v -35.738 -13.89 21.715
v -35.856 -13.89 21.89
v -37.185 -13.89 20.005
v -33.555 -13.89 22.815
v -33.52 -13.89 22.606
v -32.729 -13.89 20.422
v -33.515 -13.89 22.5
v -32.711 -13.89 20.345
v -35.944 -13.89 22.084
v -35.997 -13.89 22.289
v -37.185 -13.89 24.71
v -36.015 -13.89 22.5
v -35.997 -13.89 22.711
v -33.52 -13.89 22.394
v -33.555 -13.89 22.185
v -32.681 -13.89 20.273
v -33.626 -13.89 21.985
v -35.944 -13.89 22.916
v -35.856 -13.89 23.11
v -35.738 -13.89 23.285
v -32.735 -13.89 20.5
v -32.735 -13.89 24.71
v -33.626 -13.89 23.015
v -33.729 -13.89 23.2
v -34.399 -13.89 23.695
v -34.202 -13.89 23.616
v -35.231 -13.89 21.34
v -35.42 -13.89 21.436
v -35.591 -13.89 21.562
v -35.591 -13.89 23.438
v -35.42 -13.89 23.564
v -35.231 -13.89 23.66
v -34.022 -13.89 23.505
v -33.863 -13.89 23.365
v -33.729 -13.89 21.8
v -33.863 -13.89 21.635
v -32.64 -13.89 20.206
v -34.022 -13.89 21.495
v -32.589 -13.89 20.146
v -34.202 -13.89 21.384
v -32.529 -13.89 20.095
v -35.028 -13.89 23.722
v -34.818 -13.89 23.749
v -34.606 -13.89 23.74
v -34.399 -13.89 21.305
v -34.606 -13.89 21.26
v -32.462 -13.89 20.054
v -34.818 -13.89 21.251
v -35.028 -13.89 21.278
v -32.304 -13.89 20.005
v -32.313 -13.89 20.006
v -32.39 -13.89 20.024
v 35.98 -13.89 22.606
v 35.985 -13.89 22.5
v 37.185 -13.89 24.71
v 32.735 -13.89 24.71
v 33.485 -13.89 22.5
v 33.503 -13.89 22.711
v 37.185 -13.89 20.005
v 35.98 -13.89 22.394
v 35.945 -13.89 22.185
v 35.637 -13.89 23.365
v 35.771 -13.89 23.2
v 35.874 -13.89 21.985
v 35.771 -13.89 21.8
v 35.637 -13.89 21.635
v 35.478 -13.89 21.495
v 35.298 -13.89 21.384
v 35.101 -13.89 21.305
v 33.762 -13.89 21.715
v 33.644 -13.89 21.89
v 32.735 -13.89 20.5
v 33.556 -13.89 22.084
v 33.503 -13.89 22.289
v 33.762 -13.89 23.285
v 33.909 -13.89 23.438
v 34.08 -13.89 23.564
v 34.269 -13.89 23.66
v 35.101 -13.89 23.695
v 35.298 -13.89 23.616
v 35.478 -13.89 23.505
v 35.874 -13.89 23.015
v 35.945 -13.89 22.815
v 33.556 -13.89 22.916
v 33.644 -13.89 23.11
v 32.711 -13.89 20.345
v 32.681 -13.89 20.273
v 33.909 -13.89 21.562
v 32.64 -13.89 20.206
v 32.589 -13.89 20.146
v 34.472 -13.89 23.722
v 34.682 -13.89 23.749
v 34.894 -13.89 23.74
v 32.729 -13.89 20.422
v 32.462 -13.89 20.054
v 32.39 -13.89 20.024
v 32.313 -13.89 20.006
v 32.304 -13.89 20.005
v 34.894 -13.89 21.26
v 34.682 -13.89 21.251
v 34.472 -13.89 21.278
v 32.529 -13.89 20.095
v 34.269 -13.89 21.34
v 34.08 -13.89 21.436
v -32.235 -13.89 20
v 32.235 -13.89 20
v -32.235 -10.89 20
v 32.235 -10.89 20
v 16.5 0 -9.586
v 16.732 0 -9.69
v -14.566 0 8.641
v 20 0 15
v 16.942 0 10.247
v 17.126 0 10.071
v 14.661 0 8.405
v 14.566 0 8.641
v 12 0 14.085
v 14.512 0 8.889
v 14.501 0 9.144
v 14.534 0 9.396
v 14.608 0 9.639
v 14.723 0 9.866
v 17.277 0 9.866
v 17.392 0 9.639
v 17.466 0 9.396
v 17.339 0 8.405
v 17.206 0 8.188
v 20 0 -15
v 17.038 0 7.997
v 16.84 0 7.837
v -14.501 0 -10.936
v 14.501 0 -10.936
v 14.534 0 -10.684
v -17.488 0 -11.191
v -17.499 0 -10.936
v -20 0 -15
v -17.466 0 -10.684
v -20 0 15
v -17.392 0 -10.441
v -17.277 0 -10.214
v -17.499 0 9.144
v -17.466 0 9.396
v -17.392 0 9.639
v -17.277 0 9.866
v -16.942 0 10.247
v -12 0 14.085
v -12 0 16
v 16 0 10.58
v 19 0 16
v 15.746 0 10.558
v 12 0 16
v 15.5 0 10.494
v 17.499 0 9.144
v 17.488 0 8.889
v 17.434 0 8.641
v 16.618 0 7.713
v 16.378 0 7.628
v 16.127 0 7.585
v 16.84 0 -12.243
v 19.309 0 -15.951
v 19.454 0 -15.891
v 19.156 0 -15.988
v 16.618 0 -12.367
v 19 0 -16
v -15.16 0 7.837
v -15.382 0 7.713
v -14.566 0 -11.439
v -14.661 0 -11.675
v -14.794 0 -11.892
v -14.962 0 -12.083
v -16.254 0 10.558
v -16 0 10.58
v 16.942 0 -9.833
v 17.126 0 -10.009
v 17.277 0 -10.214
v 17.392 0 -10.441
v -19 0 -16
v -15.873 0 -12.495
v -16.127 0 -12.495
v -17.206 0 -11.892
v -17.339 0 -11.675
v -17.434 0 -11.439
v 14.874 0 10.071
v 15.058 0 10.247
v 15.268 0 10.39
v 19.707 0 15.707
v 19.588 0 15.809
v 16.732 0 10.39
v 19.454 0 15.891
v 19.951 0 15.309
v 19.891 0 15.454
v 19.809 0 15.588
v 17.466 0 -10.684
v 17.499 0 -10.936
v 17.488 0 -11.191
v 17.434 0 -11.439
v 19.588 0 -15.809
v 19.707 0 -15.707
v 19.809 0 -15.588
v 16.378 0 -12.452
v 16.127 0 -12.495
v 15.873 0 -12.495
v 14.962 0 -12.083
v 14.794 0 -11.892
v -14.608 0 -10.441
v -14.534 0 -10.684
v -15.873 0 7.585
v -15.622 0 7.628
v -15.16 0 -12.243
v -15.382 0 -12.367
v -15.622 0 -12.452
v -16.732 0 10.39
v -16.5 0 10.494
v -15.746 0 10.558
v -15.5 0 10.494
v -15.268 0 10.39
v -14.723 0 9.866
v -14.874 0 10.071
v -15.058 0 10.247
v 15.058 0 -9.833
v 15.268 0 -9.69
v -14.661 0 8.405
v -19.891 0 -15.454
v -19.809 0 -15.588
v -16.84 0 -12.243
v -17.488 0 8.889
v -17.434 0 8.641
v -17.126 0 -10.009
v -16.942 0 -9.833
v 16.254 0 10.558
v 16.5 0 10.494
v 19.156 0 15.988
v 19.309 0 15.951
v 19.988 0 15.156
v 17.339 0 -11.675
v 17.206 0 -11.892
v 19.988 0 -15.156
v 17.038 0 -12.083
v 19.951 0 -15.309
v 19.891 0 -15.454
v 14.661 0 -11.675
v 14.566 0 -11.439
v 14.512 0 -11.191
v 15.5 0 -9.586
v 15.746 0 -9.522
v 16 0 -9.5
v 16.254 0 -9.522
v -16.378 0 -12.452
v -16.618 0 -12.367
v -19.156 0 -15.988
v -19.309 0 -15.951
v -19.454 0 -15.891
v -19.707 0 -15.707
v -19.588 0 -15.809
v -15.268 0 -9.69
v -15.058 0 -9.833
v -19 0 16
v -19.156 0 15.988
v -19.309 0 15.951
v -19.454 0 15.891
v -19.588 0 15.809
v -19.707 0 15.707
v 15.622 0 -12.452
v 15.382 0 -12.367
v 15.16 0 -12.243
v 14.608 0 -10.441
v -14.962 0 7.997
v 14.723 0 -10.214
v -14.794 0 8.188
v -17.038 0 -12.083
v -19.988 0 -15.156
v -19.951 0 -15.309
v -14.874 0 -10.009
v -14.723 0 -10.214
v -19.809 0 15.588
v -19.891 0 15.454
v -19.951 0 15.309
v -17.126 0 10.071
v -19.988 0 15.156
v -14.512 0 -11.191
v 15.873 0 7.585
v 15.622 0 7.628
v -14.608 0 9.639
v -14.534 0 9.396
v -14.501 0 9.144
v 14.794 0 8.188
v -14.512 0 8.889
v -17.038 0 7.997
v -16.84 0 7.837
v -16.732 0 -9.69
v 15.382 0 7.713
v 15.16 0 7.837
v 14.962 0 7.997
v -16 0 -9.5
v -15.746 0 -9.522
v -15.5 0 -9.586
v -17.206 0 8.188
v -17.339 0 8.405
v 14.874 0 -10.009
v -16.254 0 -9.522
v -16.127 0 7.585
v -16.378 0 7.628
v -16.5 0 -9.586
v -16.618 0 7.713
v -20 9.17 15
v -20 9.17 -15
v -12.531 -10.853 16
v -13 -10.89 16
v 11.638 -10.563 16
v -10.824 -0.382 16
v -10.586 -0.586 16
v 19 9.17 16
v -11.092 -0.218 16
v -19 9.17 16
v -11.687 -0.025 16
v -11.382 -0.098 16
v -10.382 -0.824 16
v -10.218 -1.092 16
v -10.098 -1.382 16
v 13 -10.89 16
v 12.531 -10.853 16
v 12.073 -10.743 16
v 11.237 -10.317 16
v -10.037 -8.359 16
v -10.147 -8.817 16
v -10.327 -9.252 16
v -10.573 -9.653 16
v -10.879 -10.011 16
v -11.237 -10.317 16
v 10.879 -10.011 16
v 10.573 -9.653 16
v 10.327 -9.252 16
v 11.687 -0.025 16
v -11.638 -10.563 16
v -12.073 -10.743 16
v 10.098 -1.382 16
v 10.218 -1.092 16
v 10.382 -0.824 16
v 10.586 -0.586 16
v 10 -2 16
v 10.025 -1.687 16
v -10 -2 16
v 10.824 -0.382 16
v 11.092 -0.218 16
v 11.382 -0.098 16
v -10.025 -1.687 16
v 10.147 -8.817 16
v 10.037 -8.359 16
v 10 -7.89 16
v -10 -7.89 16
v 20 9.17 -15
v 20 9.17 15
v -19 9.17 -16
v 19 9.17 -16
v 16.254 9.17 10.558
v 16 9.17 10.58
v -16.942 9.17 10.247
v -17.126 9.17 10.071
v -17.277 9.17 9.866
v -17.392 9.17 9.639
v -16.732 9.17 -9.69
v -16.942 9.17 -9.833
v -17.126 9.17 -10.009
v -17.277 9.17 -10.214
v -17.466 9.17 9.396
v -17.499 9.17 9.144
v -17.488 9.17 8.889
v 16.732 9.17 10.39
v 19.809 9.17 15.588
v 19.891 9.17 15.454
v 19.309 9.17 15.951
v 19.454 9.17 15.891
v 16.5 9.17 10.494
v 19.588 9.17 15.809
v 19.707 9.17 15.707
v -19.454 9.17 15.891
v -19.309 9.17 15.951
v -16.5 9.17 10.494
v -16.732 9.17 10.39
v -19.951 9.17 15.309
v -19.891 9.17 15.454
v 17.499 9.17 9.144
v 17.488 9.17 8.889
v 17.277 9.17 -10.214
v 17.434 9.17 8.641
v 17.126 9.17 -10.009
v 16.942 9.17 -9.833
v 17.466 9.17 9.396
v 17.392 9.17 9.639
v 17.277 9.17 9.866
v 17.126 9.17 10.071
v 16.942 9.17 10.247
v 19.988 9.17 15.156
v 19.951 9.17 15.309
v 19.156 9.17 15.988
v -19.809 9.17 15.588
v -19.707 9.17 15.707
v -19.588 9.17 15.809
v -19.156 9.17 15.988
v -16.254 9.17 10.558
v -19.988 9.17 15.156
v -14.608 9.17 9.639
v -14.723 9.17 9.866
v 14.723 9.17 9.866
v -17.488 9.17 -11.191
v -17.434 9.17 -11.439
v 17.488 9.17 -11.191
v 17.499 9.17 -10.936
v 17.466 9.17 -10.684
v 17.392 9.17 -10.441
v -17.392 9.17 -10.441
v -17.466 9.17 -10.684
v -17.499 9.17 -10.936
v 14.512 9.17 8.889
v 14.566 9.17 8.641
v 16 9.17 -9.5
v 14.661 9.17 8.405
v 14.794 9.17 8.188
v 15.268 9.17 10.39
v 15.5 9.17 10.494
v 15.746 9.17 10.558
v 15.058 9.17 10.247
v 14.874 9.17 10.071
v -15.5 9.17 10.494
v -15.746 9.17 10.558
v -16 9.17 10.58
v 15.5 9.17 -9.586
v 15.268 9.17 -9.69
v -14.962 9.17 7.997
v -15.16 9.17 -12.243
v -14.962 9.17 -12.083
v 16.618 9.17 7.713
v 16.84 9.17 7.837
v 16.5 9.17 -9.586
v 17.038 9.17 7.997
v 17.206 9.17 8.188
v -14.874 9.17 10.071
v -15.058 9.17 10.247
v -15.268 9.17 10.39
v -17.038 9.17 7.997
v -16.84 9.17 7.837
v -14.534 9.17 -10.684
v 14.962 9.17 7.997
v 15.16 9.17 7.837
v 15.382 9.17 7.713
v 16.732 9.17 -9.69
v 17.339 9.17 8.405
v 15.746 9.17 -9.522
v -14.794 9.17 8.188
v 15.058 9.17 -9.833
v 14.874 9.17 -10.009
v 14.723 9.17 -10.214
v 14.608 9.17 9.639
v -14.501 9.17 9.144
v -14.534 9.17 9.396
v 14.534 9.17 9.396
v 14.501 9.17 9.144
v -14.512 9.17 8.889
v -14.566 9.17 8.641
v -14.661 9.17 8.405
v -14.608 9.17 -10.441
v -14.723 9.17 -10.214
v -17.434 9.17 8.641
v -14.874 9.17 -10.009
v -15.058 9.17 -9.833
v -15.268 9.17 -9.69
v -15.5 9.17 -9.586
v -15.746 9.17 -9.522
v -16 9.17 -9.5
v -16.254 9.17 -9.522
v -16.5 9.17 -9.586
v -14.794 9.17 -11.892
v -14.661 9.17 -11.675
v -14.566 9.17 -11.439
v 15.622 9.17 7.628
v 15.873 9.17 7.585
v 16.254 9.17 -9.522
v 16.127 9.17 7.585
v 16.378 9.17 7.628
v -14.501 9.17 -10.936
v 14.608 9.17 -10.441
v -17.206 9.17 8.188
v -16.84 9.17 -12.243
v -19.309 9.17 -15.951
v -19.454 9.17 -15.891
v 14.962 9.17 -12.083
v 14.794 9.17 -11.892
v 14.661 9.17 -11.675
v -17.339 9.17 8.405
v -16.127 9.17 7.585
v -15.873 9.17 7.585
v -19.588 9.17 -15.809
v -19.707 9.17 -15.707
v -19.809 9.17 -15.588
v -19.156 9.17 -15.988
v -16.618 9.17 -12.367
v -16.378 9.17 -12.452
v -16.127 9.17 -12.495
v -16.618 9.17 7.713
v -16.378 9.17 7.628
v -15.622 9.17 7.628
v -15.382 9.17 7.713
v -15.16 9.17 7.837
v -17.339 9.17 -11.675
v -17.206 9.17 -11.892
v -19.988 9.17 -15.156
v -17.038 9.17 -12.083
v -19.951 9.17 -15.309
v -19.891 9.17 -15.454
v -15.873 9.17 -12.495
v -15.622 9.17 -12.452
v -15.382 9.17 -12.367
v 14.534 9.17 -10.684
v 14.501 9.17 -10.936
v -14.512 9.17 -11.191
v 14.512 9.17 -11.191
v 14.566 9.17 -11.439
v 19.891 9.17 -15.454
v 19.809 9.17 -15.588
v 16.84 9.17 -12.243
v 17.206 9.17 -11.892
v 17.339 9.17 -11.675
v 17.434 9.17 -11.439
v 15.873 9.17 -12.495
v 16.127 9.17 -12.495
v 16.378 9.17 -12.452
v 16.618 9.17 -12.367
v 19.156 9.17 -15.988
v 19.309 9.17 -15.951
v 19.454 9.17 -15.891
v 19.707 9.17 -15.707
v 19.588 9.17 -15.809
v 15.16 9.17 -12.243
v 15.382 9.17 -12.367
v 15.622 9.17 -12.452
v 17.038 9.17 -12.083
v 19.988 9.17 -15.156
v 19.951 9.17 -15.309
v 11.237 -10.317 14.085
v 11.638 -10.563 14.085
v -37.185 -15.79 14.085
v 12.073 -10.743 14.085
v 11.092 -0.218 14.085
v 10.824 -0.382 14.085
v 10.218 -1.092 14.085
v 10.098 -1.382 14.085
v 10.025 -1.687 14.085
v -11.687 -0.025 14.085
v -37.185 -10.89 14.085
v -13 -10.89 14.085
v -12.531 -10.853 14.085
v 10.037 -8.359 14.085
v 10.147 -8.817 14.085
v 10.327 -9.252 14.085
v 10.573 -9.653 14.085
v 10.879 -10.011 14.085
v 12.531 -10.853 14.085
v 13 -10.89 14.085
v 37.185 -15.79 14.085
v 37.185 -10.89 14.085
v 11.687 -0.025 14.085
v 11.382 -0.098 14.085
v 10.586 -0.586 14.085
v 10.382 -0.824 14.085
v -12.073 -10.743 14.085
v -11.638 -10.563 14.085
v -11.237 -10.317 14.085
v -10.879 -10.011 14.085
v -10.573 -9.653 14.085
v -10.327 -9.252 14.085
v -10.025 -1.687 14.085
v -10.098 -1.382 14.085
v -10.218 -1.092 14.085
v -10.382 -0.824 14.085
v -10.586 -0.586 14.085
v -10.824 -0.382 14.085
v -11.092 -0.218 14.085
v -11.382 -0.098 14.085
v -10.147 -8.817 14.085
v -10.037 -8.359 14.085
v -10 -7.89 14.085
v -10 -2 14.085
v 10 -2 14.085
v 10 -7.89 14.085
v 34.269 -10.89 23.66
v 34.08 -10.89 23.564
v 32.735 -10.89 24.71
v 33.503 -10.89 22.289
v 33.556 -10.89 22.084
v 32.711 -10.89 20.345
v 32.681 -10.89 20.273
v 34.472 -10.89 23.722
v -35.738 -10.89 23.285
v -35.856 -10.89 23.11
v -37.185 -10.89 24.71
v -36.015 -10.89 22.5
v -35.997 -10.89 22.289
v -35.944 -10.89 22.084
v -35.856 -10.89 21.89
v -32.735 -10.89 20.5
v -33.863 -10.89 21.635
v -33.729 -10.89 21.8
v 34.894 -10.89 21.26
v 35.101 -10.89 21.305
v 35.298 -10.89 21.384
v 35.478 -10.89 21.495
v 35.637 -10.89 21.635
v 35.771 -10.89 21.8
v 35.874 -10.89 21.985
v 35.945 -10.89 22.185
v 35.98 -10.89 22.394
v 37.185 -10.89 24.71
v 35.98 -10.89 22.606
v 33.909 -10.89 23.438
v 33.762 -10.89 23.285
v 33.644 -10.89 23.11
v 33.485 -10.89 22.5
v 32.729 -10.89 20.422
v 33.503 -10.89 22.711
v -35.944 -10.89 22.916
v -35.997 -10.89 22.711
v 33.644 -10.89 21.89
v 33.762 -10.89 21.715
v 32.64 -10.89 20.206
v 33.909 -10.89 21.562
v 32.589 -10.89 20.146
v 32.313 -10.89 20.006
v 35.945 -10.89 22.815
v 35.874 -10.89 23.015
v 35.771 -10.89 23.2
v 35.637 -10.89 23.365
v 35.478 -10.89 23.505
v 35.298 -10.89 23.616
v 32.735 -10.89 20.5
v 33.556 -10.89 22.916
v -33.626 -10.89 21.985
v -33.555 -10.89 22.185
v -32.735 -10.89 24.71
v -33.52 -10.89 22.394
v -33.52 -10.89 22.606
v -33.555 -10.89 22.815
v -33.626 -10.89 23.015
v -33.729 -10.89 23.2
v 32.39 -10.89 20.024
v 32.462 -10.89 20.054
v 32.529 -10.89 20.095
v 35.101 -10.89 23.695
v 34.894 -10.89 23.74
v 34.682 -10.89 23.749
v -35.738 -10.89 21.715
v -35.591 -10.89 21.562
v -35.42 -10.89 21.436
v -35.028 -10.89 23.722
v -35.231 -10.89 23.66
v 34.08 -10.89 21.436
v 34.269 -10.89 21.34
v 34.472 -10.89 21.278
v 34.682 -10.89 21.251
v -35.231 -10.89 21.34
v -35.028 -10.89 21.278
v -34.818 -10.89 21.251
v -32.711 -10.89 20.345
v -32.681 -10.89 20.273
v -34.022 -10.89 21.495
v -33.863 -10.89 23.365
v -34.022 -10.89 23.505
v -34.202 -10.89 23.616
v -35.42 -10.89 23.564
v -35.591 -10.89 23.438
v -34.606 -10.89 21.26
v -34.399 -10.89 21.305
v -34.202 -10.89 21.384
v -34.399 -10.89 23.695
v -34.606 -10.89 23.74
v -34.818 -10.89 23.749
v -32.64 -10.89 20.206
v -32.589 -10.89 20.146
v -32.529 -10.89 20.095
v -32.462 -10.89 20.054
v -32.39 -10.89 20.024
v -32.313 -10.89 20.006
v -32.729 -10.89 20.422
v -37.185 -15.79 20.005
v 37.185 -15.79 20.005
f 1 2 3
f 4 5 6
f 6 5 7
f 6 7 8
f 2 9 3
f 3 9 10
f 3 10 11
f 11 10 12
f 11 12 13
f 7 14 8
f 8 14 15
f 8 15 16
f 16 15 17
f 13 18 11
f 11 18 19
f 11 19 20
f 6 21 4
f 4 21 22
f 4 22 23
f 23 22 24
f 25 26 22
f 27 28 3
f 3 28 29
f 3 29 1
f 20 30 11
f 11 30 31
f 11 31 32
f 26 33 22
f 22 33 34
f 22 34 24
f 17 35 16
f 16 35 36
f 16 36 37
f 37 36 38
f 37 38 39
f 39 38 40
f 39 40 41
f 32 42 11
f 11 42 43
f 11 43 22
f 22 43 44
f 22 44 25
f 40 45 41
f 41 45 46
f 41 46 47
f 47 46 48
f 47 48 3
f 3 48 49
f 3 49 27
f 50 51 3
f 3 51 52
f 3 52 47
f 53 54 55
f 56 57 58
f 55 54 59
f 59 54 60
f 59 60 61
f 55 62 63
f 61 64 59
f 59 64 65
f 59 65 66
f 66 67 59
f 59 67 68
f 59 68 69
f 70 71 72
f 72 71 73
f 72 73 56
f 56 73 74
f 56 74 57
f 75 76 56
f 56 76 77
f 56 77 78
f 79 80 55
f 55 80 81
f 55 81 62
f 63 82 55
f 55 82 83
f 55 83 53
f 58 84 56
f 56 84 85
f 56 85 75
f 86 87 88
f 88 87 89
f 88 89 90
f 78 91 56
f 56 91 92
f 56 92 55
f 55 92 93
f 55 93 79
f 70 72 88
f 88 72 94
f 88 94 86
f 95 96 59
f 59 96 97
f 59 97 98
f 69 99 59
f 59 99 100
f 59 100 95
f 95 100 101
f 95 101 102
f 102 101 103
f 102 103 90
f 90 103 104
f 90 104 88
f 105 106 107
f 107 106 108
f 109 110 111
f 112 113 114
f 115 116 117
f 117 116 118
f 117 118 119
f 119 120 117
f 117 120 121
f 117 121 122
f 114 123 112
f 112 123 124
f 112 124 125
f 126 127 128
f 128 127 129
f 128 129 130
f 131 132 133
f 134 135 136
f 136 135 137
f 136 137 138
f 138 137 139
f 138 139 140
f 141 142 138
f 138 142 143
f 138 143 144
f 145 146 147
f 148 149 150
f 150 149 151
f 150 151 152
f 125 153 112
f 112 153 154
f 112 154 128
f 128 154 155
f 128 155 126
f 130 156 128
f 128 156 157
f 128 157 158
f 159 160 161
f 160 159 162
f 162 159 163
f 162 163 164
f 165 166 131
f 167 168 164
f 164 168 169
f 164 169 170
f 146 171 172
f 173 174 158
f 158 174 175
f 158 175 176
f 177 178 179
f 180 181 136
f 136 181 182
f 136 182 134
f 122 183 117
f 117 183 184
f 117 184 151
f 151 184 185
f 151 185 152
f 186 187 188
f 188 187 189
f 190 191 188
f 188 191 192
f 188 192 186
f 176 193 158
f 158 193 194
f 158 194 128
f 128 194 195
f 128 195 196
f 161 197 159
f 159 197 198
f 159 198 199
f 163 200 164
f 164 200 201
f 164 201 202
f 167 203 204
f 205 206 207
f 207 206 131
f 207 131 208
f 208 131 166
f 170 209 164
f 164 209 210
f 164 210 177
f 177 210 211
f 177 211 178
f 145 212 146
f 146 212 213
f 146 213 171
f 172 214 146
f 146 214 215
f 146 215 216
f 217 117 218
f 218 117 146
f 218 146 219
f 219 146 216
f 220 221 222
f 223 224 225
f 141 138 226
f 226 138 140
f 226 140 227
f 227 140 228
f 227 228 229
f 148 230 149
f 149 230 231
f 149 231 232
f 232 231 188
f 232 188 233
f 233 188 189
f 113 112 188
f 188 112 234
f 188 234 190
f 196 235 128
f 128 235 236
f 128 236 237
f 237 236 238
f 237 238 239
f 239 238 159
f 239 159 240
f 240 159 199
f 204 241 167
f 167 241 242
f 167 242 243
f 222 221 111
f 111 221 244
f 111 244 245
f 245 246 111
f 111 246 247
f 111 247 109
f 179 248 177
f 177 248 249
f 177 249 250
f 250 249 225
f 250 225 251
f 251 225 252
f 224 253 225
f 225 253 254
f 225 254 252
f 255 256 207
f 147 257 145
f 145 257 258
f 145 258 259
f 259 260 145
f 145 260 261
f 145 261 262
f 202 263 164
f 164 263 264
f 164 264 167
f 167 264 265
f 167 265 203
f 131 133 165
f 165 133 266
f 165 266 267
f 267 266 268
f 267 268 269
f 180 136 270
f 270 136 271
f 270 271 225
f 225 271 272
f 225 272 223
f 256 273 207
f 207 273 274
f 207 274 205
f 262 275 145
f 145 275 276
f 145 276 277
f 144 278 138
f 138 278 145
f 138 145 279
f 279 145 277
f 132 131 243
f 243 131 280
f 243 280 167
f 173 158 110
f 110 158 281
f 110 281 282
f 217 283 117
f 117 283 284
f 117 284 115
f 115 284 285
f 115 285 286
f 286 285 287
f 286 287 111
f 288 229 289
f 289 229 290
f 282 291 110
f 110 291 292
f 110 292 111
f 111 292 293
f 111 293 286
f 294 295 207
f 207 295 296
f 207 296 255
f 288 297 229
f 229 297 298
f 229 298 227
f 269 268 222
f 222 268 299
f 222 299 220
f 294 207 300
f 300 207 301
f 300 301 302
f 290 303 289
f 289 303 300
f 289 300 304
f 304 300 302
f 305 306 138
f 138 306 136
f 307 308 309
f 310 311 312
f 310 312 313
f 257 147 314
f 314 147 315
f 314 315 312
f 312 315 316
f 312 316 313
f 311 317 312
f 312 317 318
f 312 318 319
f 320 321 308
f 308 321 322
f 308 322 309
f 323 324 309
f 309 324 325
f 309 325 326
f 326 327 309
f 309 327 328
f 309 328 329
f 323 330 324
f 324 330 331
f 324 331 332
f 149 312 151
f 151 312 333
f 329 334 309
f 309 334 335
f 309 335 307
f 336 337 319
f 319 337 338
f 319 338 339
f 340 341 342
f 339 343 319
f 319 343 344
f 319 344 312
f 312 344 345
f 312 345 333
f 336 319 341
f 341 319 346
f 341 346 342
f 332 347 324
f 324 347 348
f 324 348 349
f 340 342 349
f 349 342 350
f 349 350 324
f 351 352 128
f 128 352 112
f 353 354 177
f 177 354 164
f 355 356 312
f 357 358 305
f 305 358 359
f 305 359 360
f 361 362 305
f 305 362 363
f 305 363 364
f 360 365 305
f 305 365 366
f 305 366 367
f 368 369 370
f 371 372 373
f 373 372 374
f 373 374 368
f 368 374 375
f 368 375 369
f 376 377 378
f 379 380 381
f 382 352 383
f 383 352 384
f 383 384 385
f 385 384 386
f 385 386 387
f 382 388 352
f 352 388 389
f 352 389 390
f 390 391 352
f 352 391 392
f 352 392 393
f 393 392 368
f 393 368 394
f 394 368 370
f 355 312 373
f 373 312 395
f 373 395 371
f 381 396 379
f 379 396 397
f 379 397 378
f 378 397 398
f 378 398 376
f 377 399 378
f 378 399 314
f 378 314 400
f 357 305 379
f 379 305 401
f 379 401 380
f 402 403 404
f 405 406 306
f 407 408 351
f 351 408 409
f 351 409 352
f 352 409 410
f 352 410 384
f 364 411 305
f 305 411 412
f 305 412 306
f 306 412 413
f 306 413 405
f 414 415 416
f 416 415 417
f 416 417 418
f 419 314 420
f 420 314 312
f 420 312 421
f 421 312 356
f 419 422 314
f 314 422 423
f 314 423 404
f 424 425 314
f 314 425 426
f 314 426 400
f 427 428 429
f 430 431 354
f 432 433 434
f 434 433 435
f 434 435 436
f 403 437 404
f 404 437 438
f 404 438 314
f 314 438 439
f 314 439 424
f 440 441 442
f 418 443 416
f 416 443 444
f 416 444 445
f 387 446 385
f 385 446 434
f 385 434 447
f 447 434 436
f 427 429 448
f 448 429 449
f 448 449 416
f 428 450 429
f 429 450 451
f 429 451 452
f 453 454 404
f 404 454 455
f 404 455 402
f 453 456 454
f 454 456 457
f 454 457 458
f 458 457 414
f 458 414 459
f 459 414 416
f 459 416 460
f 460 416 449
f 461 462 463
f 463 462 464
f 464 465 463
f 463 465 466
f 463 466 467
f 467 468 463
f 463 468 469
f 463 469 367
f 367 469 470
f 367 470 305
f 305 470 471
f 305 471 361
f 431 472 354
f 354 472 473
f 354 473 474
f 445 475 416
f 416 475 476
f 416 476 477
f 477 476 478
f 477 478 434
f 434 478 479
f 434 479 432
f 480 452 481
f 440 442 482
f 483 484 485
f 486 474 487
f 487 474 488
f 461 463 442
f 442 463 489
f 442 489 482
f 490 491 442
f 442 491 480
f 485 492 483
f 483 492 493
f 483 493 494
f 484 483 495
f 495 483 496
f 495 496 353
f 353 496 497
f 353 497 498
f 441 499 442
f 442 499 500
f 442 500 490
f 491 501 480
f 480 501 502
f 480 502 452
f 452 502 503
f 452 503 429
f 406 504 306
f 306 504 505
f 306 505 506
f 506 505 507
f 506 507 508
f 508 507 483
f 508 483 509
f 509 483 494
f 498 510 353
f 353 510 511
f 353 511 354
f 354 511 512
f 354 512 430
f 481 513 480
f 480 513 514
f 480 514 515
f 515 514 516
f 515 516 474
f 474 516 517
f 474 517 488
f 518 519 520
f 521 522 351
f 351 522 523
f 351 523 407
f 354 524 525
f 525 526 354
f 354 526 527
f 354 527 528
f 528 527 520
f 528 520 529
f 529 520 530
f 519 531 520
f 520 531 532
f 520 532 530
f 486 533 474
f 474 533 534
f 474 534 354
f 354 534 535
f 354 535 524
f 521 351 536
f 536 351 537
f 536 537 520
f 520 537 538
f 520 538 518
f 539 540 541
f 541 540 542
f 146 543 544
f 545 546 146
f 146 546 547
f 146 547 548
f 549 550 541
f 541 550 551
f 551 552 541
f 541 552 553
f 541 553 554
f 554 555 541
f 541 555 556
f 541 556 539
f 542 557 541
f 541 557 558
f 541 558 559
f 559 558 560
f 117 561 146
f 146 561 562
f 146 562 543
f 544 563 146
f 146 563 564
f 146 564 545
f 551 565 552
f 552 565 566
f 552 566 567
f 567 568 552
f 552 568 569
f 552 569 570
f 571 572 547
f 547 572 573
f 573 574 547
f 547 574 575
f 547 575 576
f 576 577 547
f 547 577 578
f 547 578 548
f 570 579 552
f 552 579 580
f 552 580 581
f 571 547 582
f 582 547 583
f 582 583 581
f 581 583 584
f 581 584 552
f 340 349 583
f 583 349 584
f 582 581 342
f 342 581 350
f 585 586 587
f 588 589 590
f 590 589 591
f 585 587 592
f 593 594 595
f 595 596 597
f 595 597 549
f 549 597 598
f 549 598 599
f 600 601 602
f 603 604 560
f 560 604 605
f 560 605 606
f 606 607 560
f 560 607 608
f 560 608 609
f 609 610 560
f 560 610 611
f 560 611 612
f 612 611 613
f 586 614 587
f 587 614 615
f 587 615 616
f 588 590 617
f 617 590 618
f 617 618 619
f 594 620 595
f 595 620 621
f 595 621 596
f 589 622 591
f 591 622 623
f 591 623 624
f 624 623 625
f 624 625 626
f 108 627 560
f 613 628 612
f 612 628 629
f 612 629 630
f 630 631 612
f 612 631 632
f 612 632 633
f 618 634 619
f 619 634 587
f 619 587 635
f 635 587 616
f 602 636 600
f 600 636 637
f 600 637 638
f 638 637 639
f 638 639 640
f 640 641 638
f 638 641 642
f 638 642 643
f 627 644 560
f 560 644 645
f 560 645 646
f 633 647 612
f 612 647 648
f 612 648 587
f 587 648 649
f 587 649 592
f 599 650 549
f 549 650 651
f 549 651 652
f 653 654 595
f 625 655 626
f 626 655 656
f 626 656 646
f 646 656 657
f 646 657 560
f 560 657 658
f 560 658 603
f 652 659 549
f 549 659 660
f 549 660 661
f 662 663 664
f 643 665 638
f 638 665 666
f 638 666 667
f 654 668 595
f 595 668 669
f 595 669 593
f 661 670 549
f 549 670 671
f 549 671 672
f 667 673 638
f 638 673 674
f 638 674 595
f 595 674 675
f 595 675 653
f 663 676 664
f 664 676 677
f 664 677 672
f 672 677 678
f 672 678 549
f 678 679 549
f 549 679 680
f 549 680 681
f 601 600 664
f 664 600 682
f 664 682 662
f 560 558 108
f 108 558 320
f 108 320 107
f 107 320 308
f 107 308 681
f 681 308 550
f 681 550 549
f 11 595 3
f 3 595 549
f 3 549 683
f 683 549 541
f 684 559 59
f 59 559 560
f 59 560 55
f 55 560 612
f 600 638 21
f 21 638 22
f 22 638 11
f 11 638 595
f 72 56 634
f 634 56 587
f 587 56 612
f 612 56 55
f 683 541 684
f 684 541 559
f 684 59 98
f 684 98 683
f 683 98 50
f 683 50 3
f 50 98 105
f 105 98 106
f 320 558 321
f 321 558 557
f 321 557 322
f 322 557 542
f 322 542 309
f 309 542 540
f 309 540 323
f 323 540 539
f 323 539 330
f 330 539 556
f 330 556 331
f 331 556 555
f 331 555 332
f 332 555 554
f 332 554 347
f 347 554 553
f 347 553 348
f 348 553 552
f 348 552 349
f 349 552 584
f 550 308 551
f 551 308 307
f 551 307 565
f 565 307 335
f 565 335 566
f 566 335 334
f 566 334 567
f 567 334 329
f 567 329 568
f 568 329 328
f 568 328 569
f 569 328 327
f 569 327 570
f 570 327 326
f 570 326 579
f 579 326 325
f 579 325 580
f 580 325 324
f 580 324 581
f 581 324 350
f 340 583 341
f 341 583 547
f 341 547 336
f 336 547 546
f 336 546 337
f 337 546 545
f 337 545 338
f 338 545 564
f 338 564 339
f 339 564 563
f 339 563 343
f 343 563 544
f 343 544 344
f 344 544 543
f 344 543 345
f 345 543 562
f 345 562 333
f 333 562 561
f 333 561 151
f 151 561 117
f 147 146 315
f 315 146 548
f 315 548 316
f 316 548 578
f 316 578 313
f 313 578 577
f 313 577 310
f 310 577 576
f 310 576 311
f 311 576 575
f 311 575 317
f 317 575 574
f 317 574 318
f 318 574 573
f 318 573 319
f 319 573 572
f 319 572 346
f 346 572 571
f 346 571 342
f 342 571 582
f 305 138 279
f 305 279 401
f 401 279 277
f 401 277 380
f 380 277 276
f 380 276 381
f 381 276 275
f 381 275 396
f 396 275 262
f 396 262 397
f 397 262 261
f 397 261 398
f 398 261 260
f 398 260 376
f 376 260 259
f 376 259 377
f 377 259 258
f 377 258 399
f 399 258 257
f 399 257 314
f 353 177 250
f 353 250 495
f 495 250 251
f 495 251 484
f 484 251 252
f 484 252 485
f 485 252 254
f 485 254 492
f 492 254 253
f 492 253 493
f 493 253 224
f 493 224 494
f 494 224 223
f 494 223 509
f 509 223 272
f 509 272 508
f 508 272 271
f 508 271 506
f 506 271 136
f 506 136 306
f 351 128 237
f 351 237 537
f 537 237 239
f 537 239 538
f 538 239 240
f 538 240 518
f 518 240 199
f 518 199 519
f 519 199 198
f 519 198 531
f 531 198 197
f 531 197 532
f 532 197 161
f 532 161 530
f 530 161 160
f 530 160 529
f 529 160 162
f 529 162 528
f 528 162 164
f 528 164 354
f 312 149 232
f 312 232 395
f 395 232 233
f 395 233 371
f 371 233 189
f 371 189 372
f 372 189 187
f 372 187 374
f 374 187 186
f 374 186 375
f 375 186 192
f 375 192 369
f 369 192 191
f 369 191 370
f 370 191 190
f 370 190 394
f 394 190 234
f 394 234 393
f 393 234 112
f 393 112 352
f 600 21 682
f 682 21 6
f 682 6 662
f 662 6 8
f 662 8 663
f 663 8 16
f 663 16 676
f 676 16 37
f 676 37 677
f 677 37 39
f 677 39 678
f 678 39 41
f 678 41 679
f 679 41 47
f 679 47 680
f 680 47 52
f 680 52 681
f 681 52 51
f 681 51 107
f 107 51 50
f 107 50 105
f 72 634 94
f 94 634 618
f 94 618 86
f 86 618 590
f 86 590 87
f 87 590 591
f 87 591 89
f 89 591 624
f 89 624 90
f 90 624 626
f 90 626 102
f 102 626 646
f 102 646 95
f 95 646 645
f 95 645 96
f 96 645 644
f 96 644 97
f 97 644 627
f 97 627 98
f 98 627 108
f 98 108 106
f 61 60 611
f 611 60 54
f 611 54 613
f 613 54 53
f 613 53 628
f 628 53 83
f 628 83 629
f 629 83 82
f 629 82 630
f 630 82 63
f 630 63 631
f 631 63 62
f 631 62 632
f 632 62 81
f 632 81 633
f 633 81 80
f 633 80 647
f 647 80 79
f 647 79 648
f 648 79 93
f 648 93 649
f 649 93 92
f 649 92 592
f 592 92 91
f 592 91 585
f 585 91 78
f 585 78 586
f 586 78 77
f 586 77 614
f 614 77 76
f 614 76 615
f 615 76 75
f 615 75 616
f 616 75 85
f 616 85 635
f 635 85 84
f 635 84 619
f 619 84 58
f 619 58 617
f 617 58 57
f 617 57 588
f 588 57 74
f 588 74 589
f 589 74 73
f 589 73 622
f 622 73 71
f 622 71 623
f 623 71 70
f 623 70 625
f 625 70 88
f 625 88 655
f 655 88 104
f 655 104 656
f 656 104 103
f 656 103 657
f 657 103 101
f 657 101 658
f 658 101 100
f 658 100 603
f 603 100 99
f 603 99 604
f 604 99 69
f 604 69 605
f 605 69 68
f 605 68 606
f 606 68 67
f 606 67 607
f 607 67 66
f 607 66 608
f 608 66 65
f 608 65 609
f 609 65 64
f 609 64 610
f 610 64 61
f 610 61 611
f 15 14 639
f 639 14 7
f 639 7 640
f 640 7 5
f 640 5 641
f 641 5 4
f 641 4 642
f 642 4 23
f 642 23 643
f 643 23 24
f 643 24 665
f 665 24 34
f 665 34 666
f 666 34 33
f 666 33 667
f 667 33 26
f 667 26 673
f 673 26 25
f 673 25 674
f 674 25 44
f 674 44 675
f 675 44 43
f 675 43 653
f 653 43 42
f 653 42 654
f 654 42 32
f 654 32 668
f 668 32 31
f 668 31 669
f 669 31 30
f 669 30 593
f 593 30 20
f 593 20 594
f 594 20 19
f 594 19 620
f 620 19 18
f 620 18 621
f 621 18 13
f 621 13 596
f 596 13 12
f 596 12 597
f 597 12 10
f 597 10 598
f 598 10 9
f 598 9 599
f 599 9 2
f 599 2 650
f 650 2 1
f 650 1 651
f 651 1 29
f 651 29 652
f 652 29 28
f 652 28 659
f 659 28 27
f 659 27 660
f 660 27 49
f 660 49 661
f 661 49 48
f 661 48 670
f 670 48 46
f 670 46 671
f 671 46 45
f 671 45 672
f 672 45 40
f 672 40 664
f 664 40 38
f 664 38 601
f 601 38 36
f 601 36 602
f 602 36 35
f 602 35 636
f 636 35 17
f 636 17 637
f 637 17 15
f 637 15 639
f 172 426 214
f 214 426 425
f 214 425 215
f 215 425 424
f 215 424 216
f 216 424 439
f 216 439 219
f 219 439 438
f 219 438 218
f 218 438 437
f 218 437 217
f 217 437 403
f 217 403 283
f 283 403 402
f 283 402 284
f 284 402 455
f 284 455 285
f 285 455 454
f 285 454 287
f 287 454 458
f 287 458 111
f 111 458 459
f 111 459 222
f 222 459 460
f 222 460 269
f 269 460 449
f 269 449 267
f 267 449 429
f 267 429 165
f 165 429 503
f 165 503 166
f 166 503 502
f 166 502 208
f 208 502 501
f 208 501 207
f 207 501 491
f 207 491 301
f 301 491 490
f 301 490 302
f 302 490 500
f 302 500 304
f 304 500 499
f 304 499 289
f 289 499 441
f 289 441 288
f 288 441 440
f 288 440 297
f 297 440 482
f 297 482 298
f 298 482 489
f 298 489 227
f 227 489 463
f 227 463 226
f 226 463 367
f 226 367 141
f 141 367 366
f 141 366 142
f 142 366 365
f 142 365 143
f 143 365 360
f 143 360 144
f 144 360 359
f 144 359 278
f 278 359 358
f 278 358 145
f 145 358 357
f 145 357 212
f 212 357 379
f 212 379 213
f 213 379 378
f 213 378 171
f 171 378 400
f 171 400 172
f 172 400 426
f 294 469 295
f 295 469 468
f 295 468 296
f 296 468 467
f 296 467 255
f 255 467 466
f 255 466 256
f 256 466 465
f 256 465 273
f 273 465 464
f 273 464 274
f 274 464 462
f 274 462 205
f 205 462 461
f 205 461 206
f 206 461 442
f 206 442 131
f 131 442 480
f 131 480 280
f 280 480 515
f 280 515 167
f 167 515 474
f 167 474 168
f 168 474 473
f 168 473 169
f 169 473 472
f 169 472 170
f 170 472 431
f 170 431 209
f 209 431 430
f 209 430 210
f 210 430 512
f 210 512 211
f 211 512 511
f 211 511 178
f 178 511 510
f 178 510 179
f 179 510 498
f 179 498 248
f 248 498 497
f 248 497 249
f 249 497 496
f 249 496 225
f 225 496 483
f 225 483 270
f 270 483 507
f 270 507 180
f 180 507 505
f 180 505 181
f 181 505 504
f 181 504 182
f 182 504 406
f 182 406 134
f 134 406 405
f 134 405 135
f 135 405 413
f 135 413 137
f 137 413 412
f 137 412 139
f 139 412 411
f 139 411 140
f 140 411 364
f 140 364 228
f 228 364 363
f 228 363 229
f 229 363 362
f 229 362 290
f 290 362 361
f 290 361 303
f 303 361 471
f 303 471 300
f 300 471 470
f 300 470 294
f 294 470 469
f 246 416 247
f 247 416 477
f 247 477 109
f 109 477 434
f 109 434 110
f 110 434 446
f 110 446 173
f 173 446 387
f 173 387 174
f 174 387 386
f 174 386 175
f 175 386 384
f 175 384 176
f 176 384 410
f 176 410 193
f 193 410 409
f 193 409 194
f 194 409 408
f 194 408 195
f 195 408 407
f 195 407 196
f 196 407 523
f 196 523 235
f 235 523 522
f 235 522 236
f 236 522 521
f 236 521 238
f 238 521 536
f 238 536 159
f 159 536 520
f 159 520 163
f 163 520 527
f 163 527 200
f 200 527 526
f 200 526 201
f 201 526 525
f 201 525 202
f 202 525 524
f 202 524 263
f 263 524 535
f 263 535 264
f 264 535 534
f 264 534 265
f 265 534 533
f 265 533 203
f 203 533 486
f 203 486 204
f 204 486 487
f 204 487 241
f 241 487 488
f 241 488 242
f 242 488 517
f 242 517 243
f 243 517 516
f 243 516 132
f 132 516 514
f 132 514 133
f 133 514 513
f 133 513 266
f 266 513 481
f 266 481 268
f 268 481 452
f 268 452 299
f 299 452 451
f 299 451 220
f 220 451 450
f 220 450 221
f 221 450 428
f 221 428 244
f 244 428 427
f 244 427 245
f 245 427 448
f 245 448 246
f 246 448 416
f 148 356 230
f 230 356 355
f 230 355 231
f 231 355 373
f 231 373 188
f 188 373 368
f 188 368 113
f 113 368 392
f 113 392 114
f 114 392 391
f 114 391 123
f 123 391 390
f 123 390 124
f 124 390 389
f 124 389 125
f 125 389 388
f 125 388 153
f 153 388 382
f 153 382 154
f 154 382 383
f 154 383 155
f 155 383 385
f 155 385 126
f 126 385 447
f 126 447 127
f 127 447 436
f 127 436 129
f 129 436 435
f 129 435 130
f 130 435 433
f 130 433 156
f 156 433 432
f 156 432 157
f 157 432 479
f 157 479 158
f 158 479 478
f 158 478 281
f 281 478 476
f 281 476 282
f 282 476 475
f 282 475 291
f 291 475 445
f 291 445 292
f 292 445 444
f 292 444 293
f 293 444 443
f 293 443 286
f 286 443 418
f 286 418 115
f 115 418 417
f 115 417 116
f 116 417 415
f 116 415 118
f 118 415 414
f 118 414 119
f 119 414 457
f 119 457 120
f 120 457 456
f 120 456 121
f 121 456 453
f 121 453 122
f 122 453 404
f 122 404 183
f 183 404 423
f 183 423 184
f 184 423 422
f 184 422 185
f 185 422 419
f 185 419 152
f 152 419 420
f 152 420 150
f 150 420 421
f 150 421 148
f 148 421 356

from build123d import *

# Parameters (mm, degrees)
IZIM2_W                          = 40
IZIM2_H                          = 32
Y_KSEKLIK_EKSTR_ZYON1_DEPTH      = 9.17
IZIM3_W                          = 40
IZIM3_H                          = 1.915150366
Y_KSEKLIK_EKSTR_ZYON2_DEPTH      = 12.39
IZIM4_W                          = 10
IZIM4_H                          = 12.39
KES_EKSTR_ZYON1_DEPTH            = 12.39
Y_KSEKLIK_EKSTR_ZYON3_DEPTH      = 4
Y_KSEKLIK_EKSTR_ZYON3_DEPTH_BACK = 1.91515
IZIM5_W                          = 74.37
IZIM5_H                          = 3
IZIM6_W                          = 4.45
IZIM6_H                          = 3
Y_KSEKLIK_EKSTR_ZYON4_DEPTH      = 4.71
IZIM7_W                          = 5.92
IZIM7_H                          = 1.9
Y_KSEKLIK_EKSTR_ZYON5_DEPTH      = 74.37
RADYUS1_R                        = 3
RADYUS2_R                        = 2
RADYUS3_R                        = 1
RADYUS4_R                        = 0.5
IZIM8_R                          = 1.25
KES_EKSTR_ZYON2_DEPTH            = 10
IZIM9_R                          = 1.5
KES_EKSTR_ZYON3_DEPTH            = 10


with BuildPart() as part:
    # Çizim2 → Yükseklik-Ekstrüzyon1 (new body)
    with BuildSketch(Plane(origin=(0, 0, 0), x_dir=(1, 0, 0), z_dir=(0, 1, 0))):
        Rectangle(IZIM2_W, IZIM2_H)
    extrude(amount=Y_KSEKLIK_EKSTR_ZYON1_DEPTH)

    # Çizim3 → Yükseklik-Ekstrüzyon2 (add)
    with BuildSketch(Plane(origin=(0, 0, 0), x_dir=(-1, 0, 0), z_dir=(0, -1, 0))):
        with Locations((0, -15.042424817)):
            Rectangle(IZIM3_W, IZIM3_H)
    extrude(amount=Y_KSEKLIK_EKSTR_ZYON2_DEPTH)

    # Çizim4 → Kes-Ekstrüzyon1 (cut)
    with BuildSketch(Plane.XY.offset(16)):
        with Locations((-15, -6.195)):
            Rectangle(IZIM4_W, IZIM4_H)
        with Locations((15, -6.195)):
            Rectangle(IZIM4_W, IZIM4_H)
    extrude(amount=-KES_EKSTR_ZYON1_DEPTH, mode=Mode.SUBTRACT)

    # Çizim5 → Yükseklik-Ekstrüzyon3 (add, two sides: drawn at the far end of the back side and taken through both)
    with BuildSketch(Plane.XY.offset(16).offset(-Y_KSEKLIK_EKSTR_ZYON3_DEPTH_BACK)):
        with Locations((0, -12.39)):
            Rectangle(IZIM5_W, IZIM5_H)
    extrude(amount=Y_KSEKLIK_EKSTR_ZYON3_DEPTH + Y_KSEKLIK_EKSTR_ZYON3_DEPTH_BACK)

    # Çizim6 → Yükseklik-Ekstrüzyon4 (add)
    with BuildSketch(Plane.XY.offset(20)):
        with Locations((-34.96, -12.39)):
            Rectangle(IZIM6_W, IZIM6_H)
        with Locations((34.96, -12.39)):
            Rectangle(IZIM6_W, IZIM6_H)
    extrude(amount=Y_KSEKLIK_EKSTR_ZYON4_DEPTH)

    # Çizim7 → Yükseklik-Ekstrüzyon5 (add)
    with BuildSketch(Plane(origin=(37.185, 0, 0), x_dir=(0, 0, -1), z_dir=(1, 0, 0))):
        with Locations((-17.044849634, -14.84)):
            Rectangle(IZIM7_W, IZIM7_H)
    extrude(amount=-Y_KSEKLIK_EKSTR_ZYON5_DEPTH)

    # Radyus1
    radyus1_edges = [part.edges().sort_by_distance(p)[0] for p in [
        (-10, -10.89, 15.042425),
        (10, -10.89, 15.042425),
    ]]
    fillet(radyus1_edges, radius=RADYUS1_R)

    # Radyus2
    radyus2_edges = [part.edges().sort_by_distance(p)[0] for p in [
        (-10, 0, 15.042424817),
        (10, 0, 15.042424817),
    ]]
    fillet(radyus2_edges, radius=RADYUS2_R)

    # Radyus3
    radyus3_edges = [part.edges().sort_by_distance(p)[0] for p in [
        (-20, 4.585, -16),
        (20, 4.585, -16),
        (20, 4.585, 16),
        (-20, 4.585, 16),
    ]]
    fillet(radyus3_edges, radius=RADYUS3_R)

    # Radyus4
    # the kernel refuses this fillet: 0.5 mm, written as the material it adds along each edge
    with BuildSketch(Plane(origin=(-32.735, -10.89, 20), x_dir=(1, 0, 0), z_dir=(0, -1, 0)), Plane(origin=(32.735, -10.89, 20), x_dir=(0, 0, 1), z_dir=(0, -1, 0))) as radyus4_piece_1:
        with BuildLine():
            CenterArc((RADYUS4_R, RADYUS4_R), RADYUS4_R, 180, 90)
            Line((0, RADYUS4_R), (0, 0))
            Line((0, 0), (RADYUS4_R, 0))
        make_face()
    extrude(amount=3)

    # Çizim8 → Kes-Ekstrüzyon2 (cut)
    with BuildSketch(Plane(origin=(0, -10.89, 0), x_dir=(1, 0, 0), z_dir=(0, 1, 0))):
        with Locations(Location((-34.765, -22.5, 0), (0, 0, 180))):
            Circle(IZIM8_R)
        with Locations(Location((34.735, -22.5, 0), (0, 0, 180))):
            Circle(IZIM8_R)
    extrude(amount=-KES_EKSTR_ZYON2_DEPTH, mode=Mode.SUBTRACT)

    # Çizim9 → Kes-Ekstrüzyon3 (cut)
    with BuildSketch(Plane(origin=(0, 9.17, 0), x_dir=(1, 0, 0), z_dir=(0, 1, 0))):
        with Locations(Location((-16, -9.08, 0), (0, 0, 270))):
            Circle(IZIM9_R)
        with Locations(Location((-16, 11, 0), (0, 0, 270))):
            Circle(IZIM9_R)
        with Locations(Location((16, 11, 0), (0, 0, 270))):
            Circle(IZIM9_R)
        with Locations(Location((16, -9.08, 0), (0, 0, 270))):
            Circle(IZIM9_R)
    extrude(amount=-KES_EKSTR_ZYON3_DEPTH, mode=Mode.SUBTRACT)


solid = part.part
